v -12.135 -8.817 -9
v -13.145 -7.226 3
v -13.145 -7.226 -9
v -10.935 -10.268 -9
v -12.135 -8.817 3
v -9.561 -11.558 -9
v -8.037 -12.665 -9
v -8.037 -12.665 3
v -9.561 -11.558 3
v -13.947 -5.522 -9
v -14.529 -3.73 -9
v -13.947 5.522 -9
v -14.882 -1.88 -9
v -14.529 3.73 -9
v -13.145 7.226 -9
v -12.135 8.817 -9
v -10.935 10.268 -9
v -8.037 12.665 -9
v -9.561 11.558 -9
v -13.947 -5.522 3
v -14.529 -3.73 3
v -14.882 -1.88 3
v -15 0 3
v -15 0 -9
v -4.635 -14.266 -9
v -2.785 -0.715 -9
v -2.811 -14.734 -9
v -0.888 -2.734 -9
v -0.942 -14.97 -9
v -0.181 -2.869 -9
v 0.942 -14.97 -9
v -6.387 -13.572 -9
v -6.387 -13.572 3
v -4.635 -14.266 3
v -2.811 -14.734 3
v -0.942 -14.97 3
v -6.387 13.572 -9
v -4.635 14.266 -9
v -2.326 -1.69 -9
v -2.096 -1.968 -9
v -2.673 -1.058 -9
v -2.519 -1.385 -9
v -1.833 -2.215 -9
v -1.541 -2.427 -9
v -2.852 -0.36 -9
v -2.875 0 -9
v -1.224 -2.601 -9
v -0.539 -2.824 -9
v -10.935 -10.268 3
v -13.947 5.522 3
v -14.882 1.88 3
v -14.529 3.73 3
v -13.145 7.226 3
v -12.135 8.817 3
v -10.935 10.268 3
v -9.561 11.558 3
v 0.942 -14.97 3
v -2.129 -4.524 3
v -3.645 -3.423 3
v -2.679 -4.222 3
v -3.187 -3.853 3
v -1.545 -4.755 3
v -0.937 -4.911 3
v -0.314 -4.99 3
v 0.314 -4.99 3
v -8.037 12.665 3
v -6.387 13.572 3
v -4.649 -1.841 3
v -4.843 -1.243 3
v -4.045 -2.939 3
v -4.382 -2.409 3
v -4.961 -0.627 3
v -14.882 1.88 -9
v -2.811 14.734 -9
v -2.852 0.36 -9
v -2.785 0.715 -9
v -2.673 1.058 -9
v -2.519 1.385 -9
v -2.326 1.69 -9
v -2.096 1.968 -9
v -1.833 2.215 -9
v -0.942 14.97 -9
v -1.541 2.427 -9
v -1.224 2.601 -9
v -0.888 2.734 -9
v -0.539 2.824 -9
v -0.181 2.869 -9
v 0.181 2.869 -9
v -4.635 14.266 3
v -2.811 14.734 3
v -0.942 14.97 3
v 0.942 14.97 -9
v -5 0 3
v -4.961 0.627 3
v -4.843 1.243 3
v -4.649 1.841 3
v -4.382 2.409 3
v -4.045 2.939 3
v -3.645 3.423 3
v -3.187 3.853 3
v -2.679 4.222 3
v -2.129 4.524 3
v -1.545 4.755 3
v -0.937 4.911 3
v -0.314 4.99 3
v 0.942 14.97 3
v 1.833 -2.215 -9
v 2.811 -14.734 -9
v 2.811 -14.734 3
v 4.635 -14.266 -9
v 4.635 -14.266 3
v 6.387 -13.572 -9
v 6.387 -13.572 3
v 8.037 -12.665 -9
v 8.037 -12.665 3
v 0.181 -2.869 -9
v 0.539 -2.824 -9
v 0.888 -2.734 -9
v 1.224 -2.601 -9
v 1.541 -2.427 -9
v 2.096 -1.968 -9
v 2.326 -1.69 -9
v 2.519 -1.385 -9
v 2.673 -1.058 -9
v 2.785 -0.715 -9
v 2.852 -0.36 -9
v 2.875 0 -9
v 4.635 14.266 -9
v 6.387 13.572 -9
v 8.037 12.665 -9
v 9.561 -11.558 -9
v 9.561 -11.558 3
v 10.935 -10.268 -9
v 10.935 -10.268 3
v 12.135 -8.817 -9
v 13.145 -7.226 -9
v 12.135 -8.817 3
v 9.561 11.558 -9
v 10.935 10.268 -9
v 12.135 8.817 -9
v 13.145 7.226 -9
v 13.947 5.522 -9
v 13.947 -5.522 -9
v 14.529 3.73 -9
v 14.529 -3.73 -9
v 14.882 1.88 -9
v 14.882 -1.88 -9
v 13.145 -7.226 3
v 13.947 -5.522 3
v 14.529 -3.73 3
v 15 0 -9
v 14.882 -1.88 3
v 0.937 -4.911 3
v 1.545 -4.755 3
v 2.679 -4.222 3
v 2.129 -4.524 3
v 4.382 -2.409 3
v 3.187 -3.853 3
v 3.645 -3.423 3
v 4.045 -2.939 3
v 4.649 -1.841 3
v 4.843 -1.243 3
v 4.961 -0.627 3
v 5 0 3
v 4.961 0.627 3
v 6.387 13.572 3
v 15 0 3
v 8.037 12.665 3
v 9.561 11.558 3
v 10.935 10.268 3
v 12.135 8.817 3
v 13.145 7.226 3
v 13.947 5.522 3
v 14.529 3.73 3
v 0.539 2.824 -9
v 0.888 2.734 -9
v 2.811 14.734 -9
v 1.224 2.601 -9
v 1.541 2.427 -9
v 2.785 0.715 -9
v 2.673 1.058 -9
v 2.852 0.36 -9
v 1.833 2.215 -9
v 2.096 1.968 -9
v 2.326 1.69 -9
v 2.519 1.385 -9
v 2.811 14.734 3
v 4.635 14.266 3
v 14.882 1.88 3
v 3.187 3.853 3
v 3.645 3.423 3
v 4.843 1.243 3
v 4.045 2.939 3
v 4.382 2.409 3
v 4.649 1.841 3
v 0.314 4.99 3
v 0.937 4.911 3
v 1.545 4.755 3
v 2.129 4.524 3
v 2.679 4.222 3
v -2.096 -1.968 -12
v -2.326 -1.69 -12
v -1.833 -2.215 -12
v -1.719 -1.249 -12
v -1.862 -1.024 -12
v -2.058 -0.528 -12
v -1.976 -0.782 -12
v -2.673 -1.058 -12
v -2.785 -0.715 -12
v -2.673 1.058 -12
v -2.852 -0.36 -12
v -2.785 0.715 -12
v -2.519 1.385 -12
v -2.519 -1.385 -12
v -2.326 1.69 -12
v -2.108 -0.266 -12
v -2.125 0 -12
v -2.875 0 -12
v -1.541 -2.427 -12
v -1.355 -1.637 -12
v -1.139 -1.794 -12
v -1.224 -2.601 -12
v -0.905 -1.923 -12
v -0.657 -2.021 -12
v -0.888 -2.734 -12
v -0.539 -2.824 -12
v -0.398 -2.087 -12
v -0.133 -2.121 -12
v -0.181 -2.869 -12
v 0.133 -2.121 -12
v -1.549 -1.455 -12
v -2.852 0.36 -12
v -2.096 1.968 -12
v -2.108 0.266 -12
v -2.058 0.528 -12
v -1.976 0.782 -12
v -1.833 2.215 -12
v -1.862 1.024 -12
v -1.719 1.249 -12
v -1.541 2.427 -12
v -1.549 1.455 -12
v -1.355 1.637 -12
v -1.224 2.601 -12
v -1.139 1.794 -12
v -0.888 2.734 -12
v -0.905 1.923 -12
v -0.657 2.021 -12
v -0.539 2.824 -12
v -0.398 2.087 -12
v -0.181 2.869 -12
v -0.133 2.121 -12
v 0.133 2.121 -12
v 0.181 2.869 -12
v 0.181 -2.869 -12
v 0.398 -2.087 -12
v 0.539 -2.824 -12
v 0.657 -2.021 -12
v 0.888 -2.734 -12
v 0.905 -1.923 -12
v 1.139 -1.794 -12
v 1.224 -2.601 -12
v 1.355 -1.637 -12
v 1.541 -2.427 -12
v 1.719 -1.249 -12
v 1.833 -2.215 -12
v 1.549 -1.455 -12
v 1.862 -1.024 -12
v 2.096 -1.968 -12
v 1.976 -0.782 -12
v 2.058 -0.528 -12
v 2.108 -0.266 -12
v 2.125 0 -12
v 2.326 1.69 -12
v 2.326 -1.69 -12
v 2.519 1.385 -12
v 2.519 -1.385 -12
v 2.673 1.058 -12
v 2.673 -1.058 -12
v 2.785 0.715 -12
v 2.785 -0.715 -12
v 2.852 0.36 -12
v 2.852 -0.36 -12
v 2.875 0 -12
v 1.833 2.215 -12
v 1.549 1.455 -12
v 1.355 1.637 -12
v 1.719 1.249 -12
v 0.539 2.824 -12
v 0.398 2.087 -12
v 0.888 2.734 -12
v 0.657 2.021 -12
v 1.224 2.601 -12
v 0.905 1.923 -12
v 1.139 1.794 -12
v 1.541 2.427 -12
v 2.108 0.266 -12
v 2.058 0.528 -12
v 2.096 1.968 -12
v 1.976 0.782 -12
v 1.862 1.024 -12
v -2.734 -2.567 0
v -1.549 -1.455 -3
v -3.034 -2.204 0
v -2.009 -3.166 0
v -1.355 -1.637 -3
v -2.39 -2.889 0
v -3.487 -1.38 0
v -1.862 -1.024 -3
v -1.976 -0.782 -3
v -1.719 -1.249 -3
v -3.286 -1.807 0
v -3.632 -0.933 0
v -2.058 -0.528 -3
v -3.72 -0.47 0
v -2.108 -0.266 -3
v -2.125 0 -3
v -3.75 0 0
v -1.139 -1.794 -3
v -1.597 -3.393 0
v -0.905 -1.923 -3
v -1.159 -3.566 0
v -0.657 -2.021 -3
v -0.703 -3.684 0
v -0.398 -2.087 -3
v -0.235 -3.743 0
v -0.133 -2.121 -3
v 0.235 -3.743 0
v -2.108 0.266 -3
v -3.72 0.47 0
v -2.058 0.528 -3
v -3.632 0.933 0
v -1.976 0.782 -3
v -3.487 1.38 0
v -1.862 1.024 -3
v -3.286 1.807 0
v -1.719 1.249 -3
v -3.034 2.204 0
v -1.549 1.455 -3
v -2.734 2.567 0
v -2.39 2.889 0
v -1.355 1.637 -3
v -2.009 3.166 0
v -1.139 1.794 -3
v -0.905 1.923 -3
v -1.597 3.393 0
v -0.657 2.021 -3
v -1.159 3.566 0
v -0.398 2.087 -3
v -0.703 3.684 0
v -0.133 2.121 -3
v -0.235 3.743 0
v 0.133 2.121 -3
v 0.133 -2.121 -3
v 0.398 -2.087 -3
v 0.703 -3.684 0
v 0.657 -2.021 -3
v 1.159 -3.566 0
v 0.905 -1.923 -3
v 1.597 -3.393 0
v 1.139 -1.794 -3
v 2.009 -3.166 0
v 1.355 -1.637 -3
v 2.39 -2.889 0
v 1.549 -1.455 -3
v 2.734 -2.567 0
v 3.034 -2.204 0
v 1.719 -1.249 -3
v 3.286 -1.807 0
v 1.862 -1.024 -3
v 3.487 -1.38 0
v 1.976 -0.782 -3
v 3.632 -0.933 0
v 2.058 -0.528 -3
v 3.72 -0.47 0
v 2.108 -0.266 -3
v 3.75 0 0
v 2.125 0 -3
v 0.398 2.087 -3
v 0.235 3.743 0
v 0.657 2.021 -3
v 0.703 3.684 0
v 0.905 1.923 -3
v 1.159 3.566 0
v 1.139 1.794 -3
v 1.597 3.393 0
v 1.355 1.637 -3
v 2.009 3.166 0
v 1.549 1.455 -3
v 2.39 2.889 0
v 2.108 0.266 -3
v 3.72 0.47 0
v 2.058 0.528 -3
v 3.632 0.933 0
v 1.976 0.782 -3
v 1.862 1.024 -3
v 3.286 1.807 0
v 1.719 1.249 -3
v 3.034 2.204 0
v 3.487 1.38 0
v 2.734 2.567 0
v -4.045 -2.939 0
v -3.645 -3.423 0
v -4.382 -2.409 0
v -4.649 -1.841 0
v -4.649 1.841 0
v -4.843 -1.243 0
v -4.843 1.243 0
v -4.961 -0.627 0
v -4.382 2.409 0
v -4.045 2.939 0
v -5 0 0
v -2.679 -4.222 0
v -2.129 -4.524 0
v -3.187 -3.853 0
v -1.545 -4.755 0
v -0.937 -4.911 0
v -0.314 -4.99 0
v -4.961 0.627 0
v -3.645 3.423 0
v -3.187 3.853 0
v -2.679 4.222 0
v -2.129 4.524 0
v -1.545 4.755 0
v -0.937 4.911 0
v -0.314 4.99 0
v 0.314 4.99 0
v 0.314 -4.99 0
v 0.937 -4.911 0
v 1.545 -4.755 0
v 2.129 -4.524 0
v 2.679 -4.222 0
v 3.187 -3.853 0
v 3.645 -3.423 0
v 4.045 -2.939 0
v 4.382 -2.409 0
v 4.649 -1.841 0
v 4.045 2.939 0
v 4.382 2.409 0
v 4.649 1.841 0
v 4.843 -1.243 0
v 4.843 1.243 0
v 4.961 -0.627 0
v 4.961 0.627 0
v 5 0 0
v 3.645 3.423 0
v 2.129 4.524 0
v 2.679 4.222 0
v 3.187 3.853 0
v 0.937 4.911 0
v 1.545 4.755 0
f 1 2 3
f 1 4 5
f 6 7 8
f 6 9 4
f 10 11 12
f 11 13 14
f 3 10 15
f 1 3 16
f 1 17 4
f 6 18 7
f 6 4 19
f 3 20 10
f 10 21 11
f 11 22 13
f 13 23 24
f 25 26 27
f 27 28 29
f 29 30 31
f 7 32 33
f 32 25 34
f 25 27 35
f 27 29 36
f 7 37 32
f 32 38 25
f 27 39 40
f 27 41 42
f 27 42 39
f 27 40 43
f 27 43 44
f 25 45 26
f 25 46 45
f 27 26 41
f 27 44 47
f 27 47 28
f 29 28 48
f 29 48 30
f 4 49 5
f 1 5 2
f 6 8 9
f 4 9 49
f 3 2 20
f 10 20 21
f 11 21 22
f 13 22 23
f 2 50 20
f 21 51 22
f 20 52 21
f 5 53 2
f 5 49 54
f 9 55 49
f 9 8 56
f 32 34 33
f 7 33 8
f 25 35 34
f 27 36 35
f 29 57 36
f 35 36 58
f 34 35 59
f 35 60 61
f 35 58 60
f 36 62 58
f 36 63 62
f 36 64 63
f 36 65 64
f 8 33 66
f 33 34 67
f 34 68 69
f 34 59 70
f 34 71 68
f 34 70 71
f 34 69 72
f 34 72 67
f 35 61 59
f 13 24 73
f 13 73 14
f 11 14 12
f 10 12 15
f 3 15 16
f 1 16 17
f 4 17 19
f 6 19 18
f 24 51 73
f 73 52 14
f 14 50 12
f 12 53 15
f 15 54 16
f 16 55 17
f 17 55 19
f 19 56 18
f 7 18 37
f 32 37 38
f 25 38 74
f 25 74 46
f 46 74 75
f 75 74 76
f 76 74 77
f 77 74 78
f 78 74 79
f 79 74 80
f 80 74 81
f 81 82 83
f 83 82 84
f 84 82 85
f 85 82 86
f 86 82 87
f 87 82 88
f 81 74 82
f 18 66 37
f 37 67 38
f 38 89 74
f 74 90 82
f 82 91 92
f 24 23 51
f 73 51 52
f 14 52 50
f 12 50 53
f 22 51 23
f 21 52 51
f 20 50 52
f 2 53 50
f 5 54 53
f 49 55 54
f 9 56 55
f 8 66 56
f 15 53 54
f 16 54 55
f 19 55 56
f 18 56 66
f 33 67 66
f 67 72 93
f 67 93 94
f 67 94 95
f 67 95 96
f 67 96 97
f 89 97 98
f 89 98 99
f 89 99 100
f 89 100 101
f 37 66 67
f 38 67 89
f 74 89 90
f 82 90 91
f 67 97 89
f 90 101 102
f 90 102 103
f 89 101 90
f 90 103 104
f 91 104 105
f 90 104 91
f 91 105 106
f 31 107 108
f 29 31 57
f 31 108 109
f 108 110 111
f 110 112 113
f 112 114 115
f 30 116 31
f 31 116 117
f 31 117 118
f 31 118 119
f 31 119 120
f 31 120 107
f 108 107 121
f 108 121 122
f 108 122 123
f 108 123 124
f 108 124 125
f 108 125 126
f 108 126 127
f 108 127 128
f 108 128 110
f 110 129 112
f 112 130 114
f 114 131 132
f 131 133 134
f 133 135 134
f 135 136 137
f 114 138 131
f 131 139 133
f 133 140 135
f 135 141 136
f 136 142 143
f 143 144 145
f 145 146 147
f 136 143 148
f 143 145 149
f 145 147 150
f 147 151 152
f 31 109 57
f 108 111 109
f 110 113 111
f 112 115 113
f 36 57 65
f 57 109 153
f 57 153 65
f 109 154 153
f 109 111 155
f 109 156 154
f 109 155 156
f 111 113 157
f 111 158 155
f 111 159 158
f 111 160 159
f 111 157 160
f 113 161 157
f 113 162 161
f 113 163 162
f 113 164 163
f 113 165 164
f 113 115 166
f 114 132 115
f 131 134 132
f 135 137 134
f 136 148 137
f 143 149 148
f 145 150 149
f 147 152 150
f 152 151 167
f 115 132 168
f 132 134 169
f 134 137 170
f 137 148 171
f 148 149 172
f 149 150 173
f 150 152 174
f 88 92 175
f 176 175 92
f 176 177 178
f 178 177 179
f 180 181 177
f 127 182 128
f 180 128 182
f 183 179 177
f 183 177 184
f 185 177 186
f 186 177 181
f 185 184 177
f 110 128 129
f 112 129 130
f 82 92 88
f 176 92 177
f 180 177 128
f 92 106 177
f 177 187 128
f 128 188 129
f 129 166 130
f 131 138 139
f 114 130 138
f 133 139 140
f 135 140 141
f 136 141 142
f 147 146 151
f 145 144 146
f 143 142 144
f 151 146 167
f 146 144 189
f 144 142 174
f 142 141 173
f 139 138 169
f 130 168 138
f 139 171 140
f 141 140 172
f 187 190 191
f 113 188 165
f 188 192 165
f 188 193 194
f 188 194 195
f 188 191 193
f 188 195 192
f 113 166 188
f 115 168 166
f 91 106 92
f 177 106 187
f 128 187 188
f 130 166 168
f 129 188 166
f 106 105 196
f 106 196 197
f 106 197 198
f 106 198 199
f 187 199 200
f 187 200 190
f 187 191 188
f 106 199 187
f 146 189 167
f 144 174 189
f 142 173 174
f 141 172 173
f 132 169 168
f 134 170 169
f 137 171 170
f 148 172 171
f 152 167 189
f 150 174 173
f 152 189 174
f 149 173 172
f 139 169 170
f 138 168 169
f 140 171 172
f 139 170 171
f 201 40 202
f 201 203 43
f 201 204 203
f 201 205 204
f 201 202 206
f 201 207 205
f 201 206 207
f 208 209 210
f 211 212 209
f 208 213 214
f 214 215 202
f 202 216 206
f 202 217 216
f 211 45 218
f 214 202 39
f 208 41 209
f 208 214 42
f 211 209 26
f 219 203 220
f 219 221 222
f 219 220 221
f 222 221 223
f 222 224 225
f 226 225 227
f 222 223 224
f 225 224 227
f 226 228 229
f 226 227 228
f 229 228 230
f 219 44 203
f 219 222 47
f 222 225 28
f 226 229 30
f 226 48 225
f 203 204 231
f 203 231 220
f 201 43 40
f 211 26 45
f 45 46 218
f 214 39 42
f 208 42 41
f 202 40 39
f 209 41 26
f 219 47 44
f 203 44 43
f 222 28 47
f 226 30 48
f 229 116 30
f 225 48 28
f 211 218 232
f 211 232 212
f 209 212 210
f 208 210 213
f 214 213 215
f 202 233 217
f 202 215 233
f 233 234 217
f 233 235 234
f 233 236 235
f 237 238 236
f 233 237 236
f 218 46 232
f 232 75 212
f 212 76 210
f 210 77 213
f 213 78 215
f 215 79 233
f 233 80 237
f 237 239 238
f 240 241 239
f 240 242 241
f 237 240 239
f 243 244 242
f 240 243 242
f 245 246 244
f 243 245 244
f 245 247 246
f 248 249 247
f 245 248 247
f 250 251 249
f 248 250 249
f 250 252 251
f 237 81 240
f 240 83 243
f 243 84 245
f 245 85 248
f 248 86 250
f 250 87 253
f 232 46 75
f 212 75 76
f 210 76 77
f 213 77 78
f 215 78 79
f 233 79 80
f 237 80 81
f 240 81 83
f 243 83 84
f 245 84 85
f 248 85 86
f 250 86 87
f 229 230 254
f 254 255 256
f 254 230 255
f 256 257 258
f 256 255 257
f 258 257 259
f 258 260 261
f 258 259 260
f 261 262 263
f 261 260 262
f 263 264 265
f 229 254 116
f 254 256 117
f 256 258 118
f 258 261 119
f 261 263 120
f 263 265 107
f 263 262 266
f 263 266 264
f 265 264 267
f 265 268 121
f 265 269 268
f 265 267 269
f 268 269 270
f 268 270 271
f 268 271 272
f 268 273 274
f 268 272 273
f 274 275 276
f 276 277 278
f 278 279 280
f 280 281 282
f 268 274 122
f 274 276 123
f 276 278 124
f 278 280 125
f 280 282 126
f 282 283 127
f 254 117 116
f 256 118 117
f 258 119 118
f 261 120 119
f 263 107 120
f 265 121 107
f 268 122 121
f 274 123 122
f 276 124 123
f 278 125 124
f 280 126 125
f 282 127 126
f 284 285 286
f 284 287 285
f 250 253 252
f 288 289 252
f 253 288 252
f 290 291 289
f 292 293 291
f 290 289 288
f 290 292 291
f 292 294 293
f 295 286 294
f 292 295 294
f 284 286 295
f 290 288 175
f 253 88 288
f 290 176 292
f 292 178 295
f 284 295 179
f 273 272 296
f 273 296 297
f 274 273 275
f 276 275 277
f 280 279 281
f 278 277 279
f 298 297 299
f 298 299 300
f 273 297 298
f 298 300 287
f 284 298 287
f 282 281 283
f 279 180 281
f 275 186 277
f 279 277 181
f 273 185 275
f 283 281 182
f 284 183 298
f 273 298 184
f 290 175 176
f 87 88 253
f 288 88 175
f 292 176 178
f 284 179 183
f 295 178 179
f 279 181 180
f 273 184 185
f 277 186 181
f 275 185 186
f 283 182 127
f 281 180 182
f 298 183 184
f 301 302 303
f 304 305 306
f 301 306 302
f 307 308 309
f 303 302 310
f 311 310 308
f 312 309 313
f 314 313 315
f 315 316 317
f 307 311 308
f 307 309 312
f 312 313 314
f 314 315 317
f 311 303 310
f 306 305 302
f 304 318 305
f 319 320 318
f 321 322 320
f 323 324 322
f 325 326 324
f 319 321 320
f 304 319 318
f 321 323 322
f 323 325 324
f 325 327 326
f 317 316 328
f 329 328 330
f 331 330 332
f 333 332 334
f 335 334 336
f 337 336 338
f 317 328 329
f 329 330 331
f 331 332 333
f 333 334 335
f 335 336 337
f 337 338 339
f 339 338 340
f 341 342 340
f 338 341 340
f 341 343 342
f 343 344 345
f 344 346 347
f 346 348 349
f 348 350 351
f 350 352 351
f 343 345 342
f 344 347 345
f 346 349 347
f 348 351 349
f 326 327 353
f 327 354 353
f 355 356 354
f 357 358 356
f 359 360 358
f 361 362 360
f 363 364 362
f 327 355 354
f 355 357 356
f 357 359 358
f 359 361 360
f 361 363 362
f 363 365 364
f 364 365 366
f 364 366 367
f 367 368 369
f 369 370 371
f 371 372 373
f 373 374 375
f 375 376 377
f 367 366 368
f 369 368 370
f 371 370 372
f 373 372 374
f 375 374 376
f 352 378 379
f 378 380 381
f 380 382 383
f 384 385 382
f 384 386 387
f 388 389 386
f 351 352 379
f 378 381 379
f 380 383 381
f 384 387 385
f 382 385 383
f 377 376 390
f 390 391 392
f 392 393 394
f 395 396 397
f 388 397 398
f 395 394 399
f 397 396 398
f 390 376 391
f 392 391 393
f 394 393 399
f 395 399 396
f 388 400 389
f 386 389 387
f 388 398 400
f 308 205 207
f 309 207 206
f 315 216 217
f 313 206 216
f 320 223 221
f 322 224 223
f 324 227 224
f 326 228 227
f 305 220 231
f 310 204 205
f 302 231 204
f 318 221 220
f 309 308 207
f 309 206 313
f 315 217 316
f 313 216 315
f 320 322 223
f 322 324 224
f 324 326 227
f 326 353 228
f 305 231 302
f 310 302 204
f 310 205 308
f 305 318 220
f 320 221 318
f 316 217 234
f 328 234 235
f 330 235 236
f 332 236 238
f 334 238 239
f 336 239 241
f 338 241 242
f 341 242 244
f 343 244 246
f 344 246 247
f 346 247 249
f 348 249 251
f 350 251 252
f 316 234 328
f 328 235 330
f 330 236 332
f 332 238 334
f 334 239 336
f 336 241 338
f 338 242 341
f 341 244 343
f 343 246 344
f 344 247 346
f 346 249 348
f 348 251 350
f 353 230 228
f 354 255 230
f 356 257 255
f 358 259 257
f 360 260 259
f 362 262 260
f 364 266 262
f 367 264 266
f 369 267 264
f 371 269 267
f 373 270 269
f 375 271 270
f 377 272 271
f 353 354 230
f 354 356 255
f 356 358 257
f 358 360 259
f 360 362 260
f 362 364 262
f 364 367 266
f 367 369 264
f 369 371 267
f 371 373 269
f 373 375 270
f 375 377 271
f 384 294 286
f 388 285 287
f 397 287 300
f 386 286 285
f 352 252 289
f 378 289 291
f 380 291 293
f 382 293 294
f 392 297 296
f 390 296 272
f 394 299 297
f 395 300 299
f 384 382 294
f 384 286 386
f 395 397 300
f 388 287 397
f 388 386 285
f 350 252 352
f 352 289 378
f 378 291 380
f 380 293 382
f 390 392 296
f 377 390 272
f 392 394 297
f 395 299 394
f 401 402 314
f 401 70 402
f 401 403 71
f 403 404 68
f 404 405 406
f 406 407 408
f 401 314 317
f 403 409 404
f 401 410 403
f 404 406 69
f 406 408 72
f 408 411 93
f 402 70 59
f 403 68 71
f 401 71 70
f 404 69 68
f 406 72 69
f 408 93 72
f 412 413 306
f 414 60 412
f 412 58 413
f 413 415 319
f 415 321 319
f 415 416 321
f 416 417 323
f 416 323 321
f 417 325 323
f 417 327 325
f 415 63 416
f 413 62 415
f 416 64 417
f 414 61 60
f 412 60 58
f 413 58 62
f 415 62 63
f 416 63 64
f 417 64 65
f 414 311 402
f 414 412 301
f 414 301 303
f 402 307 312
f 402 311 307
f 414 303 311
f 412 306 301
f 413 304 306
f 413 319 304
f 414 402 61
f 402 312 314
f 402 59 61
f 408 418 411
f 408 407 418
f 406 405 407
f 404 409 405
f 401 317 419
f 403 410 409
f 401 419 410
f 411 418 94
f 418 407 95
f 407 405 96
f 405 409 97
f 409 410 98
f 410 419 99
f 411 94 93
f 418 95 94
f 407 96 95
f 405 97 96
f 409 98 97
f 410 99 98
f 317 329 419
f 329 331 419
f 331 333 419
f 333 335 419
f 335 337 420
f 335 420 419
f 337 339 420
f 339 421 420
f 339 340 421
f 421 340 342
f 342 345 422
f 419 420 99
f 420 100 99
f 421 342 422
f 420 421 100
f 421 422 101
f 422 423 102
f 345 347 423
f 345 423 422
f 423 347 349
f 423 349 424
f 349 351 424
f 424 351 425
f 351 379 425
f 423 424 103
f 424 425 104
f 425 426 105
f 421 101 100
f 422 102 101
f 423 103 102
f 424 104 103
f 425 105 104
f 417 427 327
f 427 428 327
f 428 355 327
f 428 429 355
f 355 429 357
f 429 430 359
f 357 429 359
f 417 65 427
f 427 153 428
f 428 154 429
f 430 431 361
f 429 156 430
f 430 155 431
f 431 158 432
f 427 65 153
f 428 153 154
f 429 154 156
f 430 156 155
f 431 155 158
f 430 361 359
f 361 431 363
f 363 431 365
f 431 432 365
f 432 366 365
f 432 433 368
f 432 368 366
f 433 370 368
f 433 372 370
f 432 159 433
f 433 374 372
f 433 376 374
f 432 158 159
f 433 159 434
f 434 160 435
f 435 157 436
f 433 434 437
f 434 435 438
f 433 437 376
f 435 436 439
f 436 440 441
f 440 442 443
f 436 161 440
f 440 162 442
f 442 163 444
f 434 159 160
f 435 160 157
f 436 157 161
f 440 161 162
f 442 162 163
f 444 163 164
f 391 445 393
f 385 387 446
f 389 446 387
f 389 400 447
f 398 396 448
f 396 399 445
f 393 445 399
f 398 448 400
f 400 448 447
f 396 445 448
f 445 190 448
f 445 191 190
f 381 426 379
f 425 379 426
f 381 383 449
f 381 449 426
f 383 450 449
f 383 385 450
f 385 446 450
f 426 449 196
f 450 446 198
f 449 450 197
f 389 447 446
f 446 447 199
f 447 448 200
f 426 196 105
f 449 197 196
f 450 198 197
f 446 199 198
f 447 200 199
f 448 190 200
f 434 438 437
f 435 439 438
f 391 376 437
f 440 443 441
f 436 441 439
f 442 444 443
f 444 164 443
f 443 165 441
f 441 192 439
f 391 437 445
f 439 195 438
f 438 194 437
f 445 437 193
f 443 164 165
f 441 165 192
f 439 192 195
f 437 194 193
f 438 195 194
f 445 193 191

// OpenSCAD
$fn = 50;

difference() {
	union() {
		translate(v = [0, 0, -9.0]) {
			cylinder(h = 12, r = 15.0);
		}
		#translate(v = [0, 0, -12.0]) {
			cylinder(h = 12, r = 2.875);
		}
	}
	union() {
		translate(v = [0, 0, 0]) {
			rotate(a = [0, 0, 0]) {
				difference() {
					union() {
						translate(v = [0, 0, -12.0]) {
							cylinder(h = 12, r = 2.0);
						}
						translate(v = [0, 0, -3]) {
							cylinder(h = 3, r1 = 2.125, r2 = 3.75);
						}
						translate(v = [0, 0, -12.0]) {
							cylinder(h = 12, r = 2.125);
						}
						translate(v = [0, 0, -12.0]) {
							cylinder(h = 12, r = 2.0);
						}
					}
					union();
				}
			}
		}
		#cylinder(h = 3, r = 5.0);
	}
}
